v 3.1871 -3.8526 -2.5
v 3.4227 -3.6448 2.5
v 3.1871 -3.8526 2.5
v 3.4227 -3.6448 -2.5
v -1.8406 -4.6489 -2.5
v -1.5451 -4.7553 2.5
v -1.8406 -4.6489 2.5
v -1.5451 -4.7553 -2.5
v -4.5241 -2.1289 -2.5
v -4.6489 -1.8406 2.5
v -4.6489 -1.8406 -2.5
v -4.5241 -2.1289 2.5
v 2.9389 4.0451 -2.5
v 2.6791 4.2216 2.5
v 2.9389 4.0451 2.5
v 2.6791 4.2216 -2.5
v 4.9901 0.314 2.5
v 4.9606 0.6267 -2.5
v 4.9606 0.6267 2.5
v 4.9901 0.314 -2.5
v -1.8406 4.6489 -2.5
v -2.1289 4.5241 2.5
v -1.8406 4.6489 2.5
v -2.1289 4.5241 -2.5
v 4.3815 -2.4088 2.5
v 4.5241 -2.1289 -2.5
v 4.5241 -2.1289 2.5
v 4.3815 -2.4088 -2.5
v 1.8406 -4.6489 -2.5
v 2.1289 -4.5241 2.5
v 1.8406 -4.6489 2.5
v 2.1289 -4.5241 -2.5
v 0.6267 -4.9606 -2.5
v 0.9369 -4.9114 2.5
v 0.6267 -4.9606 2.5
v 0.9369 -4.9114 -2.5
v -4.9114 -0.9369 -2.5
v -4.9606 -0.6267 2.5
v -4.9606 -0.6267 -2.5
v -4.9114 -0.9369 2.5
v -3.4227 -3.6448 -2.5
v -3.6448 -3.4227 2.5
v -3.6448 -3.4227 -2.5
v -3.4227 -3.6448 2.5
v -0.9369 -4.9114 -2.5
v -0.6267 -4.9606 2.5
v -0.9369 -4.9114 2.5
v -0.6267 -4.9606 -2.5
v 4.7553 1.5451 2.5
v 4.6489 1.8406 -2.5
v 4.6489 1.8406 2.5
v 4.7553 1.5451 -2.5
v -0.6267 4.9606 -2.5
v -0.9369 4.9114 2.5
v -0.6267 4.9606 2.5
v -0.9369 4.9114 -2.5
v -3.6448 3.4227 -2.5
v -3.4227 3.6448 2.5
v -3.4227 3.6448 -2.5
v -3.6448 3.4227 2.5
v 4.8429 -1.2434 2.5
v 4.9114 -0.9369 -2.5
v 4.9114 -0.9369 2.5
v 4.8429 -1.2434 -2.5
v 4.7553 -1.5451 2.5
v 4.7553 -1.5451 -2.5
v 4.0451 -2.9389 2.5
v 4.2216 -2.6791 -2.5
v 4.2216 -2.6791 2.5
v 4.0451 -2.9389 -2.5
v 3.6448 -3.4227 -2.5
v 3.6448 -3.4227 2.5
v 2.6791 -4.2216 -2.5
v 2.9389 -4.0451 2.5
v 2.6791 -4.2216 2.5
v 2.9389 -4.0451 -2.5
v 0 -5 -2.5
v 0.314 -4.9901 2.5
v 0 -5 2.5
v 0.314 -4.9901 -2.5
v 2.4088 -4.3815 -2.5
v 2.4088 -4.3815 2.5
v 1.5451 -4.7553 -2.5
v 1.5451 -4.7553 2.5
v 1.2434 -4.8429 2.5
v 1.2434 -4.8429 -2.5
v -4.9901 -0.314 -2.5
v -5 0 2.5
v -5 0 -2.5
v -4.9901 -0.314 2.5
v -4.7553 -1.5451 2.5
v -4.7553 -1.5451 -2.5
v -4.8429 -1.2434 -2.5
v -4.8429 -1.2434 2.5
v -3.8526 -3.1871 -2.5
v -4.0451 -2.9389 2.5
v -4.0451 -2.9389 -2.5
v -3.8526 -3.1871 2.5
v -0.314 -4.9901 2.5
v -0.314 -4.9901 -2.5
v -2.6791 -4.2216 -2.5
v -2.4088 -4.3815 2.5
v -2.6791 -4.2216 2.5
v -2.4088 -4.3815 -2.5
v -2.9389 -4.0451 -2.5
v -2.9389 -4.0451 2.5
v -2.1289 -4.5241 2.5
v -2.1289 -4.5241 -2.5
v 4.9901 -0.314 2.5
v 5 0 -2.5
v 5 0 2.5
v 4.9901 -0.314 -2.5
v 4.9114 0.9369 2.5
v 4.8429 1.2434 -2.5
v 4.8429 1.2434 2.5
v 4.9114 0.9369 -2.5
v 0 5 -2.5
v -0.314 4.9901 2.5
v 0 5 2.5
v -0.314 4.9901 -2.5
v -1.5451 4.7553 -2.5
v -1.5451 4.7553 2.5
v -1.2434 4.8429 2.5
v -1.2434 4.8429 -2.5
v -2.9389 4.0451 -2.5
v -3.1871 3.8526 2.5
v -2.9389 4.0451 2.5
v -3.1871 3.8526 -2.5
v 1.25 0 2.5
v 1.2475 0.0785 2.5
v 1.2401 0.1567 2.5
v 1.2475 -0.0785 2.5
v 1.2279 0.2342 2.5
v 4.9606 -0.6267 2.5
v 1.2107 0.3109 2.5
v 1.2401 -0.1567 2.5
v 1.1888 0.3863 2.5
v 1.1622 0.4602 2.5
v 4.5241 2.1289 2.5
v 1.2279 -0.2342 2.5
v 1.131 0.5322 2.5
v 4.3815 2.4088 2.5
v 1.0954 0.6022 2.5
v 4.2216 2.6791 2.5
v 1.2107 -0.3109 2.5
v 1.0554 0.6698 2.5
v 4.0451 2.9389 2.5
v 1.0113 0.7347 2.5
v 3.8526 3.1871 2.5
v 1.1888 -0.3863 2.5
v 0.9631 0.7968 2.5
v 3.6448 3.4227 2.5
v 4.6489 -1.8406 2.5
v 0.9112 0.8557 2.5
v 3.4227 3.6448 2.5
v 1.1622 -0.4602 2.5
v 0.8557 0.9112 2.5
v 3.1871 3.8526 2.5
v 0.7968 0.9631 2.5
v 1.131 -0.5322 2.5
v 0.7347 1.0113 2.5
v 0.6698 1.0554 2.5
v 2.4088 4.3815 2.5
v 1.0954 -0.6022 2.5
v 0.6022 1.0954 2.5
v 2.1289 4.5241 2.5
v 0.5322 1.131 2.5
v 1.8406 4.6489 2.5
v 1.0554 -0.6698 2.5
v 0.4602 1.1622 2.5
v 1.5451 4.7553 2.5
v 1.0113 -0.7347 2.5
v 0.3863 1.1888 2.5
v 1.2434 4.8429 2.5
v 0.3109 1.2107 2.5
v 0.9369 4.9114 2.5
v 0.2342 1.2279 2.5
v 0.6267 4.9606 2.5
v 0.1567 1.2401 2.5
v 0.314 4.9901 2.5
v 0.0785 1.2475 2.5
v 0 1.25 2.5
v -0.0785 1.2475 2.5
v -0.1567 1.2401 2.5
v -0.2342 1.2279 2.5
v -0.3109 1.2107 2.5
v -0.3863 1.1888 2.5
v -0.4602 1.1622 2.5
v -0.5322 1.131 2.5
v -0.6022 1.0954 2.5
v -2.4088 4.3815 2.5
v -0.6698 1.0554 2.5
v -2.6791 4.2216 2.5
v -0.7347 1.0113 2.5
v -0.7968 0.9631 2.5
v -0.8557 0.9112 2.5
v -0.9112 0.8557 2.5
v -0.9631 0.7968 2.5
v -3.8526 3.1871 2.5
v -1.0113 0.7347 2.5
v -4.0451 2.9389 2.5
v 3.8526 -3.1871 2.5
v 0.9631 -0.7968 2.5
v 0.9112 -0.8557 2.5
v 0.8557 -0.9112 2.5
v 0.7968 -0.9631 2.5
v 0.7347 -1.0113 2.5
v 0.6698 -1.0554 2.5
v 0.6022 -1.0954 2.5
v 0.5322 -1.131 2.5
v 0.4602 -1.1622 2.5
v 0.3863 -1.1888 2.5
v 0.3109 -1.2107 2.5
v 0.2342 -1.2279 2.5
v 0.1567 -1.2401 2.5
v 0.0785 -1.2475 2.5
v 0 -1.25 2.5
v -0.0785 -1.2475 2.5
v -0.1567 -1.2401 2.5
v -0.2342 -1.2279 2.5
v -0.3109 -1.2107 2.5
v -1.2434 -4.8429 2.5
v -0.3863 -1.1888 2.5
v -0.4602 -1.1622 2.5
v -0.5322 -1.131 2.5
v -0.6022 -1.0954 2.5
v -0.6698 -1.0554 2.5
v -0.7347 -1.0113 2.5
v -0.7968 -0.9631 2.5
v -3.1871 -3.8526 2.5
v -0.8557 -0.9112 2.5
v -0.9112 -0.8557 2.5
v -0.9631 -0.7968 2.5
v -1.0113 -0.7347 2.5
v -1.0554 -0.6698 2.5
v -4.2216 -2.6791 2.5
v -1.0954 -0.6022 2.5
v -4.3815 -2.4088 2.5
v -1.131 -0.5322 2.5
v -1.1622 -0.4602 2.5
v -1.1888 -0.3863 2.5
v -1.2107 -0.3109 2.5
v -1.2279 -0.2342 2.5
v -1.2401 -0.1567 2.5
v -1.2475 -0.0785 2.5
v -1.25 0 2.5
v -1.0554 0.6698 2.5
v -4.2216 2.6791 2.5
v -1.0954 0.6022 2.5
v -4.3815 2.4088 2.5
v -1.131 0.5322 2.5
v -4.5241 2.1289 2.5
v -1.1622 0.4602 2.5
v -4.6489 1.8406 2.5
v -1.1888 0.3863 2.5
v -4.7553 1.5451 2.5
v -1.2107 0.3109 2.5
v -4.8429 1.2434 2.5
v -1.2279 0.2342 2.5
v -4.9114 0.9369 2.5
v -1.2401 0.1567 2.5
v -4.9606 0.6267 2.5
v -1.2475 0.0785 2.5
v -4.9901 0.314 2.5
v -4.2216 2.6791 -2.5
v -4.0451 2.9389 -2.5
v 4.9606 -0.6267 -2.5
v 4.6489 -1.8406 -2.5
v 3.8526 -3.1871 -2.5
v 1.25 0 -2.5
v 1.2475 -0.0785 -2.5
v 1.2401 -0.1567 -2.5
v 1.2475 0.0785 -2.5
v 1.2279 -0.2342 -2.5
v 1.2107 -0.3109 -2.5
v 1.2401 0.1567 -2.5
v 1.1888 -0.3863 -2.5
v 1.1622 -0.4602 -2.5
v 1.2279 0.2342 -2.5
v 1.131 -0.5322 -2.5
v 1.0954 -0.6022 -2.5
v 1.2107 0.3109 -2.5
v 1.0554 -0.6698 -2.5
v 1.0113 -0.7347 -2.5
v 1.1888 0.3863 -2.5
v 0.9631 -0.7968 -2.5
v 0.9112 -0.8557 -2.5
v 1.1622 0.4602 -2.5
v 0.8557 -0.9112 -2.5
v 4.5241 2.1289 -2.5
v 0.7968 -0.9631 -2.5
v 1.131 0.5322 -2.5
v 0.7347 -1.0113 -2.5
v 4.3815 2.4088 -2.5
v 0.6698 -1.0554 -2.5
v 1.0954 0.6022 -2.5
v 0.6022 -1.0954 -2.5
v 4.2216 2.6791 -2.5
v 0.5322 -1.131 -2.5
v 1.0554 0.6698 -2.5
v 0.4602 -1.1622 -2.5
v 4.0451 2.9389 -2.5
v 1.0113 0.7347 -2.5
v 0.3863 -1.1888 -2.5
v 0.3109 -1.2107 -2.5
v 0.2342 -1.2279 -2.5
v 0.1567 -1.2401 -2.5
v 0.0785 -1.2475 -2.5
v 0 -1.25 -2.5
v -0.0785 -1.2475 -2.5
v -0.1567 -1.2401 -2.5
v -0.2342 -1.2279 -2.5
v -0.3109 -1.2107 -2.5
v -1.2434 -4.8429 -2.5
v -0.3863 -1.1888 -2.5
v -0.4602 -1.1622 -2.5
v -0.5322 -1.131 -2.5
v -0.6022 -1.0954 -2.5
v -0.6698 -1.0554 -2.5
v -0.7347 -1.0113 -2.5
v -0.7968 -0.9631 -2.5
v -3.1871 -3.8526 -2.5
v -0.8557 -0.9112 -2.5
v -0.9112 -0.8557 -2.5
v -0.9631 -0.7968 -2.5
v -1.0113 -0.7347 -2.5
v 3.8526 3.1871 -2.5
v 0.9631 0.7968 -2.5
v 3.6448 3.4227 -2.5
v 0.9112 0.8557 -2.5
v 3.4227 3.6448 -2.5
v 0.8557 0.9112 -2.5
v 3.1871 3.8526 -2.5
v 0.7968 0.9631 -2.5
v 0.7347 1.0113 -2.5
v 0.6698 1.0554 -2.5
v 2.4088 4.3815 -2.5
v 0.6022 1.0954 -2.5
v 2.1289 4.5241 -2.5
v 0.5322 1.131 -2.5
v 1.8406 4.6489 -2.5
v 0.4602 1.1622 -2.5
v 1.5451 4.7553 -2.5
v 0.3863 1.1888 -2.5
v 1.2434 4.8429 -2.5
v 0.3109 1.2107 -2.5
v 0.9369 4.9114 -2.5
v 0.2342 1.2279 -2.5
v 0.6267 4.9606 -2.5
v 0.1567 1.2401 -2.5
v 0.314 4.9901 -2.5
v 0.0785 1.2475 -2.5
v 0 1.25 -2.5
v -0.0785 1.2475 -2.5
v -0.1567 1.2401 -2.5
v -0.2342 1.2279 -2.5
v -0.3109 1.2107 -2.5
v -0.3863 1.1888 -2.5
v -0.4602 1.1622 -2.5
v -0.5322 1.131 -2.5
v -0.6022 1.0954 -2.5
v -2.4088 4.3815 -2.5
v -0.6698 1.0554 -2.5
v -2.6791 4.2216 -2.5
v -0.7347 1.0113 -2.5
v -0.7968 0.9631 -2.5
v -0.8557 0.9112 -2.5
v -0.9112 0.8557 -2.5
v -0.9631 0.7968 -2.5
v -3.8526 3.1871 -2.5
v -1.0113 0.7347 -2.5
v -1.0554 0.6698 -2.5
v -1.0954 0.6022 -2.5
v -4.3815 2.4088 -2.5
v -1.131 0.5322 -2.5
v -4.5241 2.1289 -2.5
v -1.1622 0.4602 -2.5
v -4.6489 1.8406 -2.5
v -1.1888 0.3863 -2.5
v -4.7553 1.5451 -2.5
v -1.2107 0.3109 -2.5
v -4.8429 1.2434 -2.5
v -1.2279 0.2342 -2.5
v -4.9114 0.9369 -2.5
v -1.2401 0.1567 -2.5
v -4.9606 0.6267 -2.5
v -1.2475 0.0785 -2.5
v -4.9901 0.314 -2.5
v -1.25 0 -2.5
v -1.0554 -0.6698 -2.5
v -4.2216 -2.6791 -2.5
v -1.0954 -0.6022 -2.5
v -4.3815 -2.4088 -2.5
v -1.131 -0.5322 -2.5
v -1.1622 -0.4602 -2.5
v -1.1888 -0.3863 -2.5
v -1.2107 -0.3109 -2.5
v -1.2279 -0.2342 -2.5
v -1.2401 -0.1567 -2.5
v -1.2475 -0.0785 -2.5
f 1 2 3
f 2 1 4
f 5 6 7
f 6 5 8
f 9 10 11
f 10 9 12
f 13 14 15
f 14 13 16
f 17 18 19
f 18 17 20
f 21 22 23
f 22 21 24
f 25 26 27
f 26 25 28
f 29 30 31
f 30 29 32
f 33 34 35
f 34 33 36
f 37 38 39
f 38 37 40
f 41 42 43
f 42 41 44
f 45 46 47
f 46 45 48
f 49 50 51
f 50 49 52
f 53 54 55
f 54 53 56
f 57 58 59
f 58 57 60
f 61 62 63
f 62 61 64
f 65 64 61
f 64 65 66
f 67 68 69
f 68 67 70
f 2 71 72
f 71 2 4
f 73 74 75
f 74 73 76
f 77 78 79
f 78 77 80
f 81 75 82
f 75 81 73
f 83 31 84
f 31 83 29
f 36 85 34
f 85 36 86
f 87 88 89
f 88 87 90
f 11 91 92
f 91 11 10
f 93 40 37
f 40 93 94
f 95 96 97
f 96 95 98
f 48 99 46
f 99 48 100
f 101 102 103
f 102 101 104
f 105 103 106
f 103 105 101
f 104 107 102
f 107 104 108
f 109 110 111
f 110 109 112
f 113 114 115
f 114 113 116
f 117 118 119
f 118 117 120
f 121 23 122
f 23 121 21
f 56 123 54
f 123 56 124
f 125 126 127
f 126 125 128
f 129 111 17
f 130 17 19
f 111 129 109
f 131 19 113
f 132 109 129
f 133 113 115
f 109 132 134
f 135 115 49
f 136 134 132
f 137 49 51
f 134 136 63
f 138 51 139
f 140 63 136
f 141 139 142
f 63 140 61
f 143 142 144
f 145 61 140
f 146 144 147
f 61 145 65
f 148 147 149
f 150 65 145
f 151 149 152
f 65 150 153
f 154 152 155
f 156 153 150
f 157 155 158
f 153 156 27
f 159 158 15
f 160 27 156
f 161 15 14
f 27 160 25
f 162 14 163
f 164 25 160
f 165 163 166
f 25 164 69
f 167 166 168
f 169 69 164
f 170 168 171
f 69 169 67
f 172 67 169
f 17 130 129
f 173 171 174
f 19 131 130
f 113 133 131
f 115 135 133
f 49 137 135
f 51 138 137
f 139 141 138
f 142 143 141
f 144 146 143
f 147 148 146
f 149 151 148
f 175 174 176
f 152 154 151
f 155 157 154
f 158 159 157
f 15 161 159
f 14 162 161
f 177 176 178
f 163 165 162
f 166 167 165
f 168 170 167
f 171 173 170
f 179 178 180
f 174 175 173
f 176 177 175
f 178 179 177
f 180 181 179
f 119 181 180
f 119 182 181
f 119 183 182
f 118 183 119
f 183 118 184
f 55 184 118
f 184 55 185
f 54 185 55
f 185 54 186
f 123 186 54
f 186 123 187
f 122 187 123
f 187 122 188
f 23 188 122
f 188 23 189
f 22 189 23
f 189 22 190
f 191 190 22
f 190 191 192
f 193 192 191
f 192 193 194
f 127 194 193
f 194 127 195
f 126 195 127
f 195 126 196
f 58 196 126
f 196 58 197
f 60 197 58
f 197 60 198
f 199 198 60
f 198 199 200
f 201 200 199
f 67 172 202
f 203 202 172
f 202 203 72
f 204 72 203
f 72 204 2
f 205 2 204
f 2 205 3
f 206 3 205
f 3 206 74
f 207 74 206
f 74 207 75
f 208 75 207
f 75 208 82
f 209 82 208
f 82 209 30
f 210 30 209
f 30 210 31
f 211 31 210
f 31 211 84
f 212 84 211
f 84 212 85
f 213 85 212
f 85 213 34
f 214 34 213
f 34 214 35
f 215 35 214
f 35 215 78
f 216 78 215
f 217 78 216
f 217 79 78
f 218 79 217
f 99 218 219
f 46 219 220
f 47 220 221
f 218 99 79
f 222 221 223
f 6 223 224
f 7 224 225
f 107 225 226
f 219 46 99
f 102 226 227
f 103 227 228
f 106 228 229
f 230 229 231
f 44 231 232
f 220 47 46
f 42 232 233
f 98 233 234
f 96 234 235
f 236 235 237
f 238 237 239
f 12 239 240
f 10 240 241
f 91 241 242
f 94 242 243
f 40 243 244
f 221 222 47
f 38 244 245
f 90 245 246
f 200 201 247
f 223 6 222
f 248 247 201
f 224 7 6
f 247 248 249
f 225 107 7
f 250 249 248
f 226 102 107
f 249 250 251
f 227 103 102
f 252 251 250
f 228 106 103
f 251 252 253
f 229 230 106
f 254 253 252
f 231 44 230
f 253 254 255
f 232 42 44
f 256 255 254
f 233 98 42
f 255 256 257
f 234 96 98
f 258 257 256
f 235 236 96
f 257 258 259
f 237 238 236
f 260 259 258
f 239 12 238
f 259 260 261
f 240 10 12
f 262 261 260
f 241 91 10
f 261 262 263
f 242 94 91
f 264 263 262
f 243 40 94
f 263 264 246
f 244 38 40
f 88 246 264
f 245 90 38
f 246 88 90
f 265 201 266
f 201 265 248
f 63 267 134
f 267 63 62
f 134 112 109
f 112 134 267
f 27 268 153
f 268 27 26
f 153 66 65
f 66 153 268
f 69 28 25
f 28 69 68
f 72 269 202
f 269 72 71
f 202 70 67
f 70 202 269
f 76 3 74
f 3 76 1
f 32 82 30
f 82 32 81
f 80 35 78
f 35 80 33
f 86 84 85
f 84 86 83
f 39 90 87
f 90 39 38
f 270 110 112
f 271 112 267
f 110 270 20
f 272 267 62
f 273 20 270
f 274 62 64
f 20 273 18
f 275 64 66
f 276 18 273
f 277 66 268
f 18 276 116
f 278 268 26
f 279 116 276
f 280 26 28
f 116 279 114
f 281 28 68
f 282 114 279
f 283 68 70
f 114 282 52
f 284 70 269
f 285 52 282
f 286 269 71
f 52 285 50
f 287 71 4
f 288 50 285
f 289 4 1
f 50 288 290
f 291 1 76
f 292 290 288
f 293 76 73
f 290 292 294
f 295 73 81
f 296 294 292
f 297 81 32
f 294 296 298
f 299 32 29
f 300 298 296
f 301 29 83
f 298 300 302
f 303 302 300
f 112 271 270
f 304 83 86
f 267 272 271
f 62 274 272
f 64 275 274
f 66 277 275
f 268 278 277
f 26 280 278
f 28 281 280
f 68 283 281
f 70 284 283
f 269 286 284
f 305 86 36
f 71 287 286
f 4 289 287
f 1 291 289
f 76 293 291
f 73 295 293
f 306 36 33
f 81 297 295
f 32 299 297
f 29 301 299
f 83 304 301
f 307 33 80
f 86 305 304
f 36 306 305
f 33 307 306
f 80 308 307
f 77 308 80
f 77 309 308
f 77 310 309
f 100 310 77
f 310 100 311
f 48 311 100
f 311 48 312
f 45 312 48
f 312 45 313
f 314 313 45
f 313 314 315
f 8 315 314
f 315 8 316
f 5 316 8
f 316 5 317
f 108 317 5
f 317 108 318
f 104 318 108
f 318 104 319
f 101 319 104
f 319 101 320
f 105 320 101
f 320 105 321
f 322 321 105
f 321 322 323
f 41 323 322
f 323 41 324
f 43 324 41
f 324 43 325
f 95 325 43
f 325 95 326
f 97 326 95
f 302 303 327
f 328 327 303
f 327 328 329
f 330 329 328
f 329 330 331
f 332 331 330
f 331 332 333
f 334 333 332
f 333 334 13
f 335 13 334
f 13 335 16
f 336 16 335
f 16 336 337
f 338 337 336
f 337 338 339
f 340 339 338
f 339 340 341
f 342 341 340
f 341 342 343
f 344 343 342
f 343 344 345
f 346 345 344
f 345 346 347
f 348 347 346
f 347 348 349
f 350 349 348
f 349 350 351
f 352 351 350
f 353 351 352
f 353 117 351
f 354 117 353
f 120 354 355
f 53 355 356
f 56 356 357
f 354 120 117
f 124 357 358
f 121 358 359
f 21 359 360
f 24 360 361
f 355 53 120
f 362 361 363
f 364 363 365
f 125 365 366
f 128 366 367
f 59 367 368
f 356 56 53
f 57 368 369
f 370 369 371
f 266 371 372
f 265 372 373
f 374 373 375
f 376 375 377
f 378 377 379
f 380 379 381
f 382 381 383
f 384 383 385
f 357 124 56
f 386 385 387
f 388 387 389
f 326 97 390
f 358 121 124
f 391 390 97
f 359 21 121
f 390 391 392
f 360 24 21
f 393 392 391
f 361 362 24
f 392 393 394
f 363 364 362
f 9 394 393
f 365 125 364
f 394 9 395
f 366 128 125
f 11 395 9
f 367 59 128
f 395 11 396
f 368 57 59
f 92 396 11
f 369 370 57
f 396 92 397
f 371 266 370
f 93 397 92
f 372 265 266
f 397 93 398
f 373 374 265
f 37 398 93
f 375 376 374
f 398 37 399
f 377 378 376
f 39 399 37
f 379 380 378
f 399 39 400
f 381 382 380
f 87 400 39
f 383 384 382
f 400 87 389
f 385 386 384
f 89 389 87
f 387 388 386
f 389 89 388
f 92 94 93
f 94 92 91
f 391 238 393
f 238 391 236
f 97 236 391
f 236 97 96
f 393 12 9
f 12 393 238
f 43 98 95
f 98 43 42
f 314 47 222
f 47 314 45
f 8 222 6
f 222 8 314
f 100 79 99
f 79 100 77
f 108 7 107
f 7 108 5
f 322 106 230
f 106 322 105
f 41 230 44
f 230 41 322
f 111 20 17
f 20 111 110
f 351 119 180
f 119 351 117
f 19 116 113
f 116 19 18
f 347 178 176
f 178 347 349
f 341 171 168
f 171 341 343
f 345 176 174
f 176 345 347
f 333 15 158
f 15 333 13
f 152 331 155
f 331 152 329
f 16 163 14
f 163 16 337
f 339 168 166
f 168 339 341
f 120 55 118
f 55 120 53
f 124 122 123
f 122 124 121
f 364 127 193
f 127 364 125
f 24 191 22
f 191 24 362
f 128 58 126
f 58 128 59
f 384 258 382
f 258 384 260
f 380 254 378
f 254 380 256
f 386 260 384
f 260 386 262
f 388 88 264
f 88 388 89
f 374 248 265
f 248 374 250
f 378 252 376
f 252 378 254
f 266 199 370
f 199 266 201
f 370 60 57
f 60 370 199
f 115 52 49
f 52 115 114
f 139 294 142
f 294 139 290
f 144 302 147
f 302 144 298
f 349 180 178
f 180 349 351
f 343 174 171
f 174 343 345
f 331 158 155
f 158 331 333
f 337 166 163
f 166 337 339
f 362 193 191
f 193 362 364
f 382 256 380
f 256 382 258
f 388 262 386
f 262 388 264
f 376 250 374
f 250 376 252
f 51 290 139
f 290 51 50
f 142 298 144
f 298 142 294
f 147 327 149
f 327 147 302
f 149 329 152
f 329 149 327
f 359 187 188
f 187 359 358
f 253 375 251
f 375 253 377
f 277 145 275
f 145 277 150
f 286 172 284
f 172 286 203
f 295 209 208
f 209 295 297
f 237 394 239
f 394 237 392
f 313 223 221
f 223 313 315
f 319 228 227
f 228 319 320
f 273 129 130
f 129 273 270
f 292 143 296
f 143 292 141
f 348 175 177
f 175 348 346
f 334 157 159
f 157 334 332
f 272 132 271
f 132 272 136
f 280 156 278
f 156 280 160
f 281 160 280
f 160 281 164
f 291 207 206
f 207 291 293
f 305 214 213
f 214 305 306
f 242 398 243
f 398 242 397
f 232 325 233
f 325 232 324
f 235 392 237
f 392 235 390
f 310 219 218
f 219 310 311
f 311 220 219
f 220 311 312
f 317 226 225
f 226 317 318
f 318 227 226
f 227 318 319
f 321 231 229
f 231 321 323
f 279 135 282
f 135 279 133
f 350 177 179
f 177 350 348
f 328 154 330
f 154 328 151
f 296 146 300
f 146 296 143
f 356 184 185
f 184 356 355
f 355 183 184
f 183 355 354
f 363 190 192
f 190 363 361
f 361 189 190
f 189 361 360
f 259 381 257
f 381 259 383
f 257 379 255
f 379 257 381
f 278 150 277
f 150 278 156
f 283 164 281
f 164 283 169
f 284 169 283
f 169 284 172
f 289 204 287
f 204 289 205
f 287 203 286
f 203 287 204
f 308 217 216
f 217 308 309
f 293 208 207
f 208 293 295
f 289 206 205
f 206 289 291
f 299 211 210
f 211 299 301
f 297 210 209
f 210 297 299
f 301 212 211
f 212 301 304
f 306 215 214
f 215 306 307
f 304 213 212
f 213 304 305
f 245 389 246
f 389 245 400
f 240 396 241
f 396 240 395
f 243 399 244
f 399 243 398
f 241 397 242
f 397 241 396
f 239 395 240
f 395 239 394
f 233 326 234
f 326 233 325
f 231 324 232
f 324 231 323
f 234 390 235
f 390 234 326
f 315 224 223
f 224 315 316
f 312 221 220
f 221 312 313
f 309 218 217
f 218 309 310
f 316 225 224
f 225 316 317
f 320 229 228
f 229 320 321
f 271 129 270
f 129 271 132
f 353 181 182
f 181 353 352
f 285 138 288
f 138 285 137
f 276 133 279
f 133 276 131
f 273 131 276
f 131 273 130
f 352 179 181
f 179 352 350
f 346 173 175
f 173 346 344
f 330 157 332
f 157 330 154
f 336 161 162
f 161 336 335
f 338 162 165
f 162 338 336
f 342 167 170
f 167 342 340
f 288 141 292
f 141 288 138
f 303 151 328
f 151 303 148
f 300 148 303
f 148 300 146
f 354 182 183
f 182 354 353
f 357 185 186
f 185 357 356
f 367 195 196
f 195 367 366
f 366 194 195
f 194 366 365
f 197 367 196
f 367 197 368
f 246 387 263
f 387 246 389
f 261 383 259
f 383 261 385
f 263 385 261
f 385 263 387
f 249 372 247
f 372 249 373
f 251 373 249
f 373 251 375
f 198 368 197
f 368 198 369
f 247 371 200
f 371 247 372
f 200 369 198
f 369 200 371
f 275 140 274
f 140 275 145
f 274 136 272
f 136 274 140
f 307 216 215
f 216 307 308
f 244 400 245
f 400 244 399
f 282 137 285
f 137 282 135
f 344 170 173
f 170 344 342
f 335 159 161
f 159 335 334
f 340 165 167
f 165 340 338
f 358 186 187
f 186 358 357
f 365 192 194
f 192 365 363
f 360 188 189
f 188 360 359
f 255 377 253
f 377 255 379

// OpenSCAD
// file: ../openscad-extra/openscad-extra/countersink.scad
/*
Countersink depression for screw heads.
*/
include <../settings.scad>;
use <../openscad-extra/countersink.scad>;

/*
module make_countersink(d1=0, d2=0, h=0, l=0, outer=100, inner=200, bt_extra=0, $fn=25){
    extra = 0.5;
    d1 = d1 ? d1 : screw_thread_diameter;
    d2 = d2 ? d2 : screw_head_diameter;
    h = h ? h : screw_head_height;
    
    union(){
        cylinder(d1=d1, d2=d2, h=h+extra, center=true, $fn=$fn);
        
        if(l)
        cylinder(d=d1, h=l, center=true, $fn=$fn);
    
        // big top
    	translate([0,0,(h+extra)/2])
    	cylinder(d=d2+bt_extra, h=outer, center=false, $fn=$fn);

    	// lower bottom
    	translate([0,0,-(h+extra)/2-inner])
    	cylinder(d=d1, h=inner, center=false, $fn=$fn);
	}
}
*/

module make_countersink_motor(){
    make_countersink(
        d1=motor_mount_holes_width,
        d2=motor_mount_holes_head_width,
        h=motor_mount_holes_head_height);
}

make_countersink();
// file: ../openscad-extra/settings.scad
// Common settings used by all scad files.

// ALL UNITS IN MILLIMETERS (MM)!!!

$fn = 30;//low-res but fast to render
//$fn = 50;//higher-res but slow to render

pi = 3.1415926535897932384626433832795;

max_footprint = 150; // 15x15 cm

bottom_clearance = 10;
bottom_clearance = 25.4/2+10;
//bottom_clearance = 30;

shell_alpha = 0.215;
//shell_alpha = 1.0;

tolerance = 0.5;

// Flat countersunk M2.5mm x 0.45mm machine screw.
screw_thread_diameter = 2.5;//2.8;//2.75;//2.4?
screw_thread_length = 5;//?
screw_head_diameter = 4.75; // M2.5
//screw_head_diameter = 5.2; // M3
screw_head_height = 1.5;//2;

screw_thread_diameter2 = 2;

unit_thickness = 5;
u = unit_thickness;

shell_thickness = unit_thickness;

// Show flags.
show_platform = 1;
show_head = 1;
show_head_shell = 0;
show_head_electronics_bb = 0;
show_inner_head = 0;
show_battery = 1;
show_foot_cube = 0;
show_torso = 0;
show_motor = 0;
show_motor_wheeled_layout = 1;
show_motor_treads = 0;
show_motor_plates = 1;
show_motor_inner_plates = 1;
show_motor_outer_plates = 1;
show_wheel = 0;//obsolete
show_tracks = 1;//
show_track_wheels = 1;
show_caster = 0;
show_rpi = 1;
show_vertical_plates = 1;//
show_horizontal_plates = 1;//
show_caster_plates = 0;//obsolete?
show_camera = 1;
show_screen = 0;
show_edge_mount = 1;
show_sonar_mount = 1;
show_recharge_mount = 1;
show_conduit = 1;
show_torso_shell = 0;
show_recharge_dock = 0;
show_head_tilt_axis = 0;
show_rpi_camera_axis = 0;
show_laser_axis = 0;

head_vertical_angle_tilt = 0;
//head_vertical_angle_tilt = 30;//max
//head_vertical_angle_tilt = 10;

torso_height = 120+20;

base_plate_diameter = max_footprint-unit_thickness*2;
base_plate_frame = 0;

head_height = 50;
head_offset_z = max_footprint/2;
head_middle_cutout = 85;

rpi_with_four_hats_and_clearance = 76;

motor_gear_teeth = 26;

qrd1114_w = 6.10;
qrd1114_l = 4.39;
qrd1114_h = 4.65;

dock_radius = 10;
dock_gripper_border = 2;
dock_gripper_instep = 0.9;
dock_gripper_cutout_tapper = 50;
dock_receiver_height = 5;

// Patriod Fuel+ 9000 mAh
battery_length = 90;
battery_width = 57;
battery_height = 23;
battery_offset_z = 30;//4;

wheel_diameter = 50;
wheel_offset_x = 65;
wheel_offset_z = wheel_diameter/2;
wheel_axle_diameter = 5;

//caster_diameter = 19.05; // 0.75 inches
caster_diameter = 25.45; // 1 inches
//caster_diameter = 15.875; // 5/8 inches
caster_holder_diameter = 30;//31;
caster_offset_y = base_plate_diameter/2 - caster_holder_diameter/2;

arduino_offset_x = 0;
arduino_offset_y = 0;
arduino_offset_z = 67;
arduino_offset_x2 = 0;
arduino_offset_y2 = -20;
arduino_offset_z2 = torso_height+bottom_clearance;

horizontal_plate_width = unit_thickness*8*2 - unit_thickness*2;
horizontal_plate_depth = unit_thickness*8*2;

vertical_plate_width = horizontal_plate_depth;
vertical_plate_height = unit_thickness*8;
vertical_plate_offset_x = wheel_offset_x-22.5;
vertical_plate_offset_z = vertical_plate_height/2 + unit_thickness/2;

vertical_battery_plate_height = 100 - 15;

caster_plate_width = horizontal_plate_width + unit_thickness*2;
caster_plate_mount_length = unit_thickness*4;
caster_plate_width_minor = caster_holder_diameter;

motor_switch_length = 20;
motor_switch_thickness = 6.5;
motor_switch_height = 11;
motor_switch_height_leads = 23;
motor_switch_on_height =  13.3;
motor_switch_hole_diameter = 2.5;
motor_switch_hole_offset_z = 6.5;//this plus diameter/2 is hole center from switch top
motor_switch_hole_spacing = 7.1;// holes are diameter/2 from this

motor_length = 60;
motor_width = 25;
motor_collar_width = 7;
motor_collar_height = 2.5;
motor_axle_width = 4;
motor_axle_height = 9.5;
motor_offset_x = 10;
//motor_offset_y = motor_width/2+5;
motor_offset_y = unit_thickness*3.5;
motor_offset_z = vertical_plate_height/2 - unit_thickness/2;//4;//30;
motor_mount_holes_dist = 17;
// motor countersink hole
motor_mount_holes_width = 3; // M3
motor_mount_holes_head_height = 2.2;
motor_mount_holes_head_width = 5.8;
motor_bearing_outer_diameter = 10;
motor_bearing_inner_diameter = 5.95;
motor_bearing_thickness = 2.5;

motor_unimount_idler_axle_d = screw_thread_diameter;
//motor_unimount_spacer_depth = 0.1;//too small
motor_unimount_spacer_depth = 0.5;

motor_arm_offset_y = -u*3;
motor_arm_offset_z = u*.5;

motor_plate_width = vertical_plate_width;
motor_plate_height = vertical_plate_height;
motor_plate_thickness = unit_thickness;
motor_plate_offset_z = vertical_plate_offset_z;

motor_plate_middle_thickness = 5;

wheel_hub_offset = u*3;

motor_hole_height_offset = -5;

nylon_spacer_outer_diameter = 6.35;
nylon_spacer_inner_diameter = 3.302;
nylon_spacer_length = 12.7;

track_width = unit_thickness*3;
track_offset_x = -50;
track_offset_z = .1;
//track_wheel_radius = 19;//original
track_wheel_radius = 14;
//track_wheel_hole_radius = (nylon_spacer_outer_diameter+1)/2;
track_wheel_hole_radius = motor_bearing_outer_diameter/2;

track_driver_hole_radius = (motor_axle_width)/2 + 0.1;
track_driver_set_screw_head_d = 4.1;
track_driver_set_screw_shaft_d = 2.4;
//track_wheel_width = 13.5;//original
track_wheel_width = u*2;
track_wheel_width_buffer = u*0.25;
track_offset = 3;        //distance from chassis
track_wheel_offset = track_offset;
//track_length = 250; // see tread_triangle.py, too big
//track_length = 240; // see tread_triangle.py
//track_length = 238; //inc/dec in 10 unit increments so notches match idlers
track_length = 228; //inc/dec in 10 unit increments so notches match idlers
track_radius = track_length/2/pi;
track_wheel_show_fancy = 1;
track_wheel_gap = track_wheel_width + track_wheel_width_buffer*2;
track_axle_bearing_diameter = motor_bearing_inner_diameter - 0.1;
track_tensioner_radius = 12;
track_nut_height = 3.5; //TODO
track_punchout_thickness = 0.25;//should be the same as the minimum layer thickness

head_slew_bearing_outer_diameter = 115;
head_slew_bearing_ring_thickness = 20;
head_slew_bearing_inner_diameter = head_slew_bearing_outer_diameter - head_slew_bearing_ring_thickness;
//head_slew_bearing_hole_diameter = head_slew_bearing_inner_diameter - head_slew_bearing_ring_thickness;
head_slew_bearing_hole_diameter = 12+tolerance; // slip ring https://www.adafruit.com/products/775
//head_slew_bearing_ball_diameter = 5;
head_slew_bearing_ball_diameter = 2.5; //u/2;
head_slew_bearing_height = u;//head_slew_bearing_ball_diameter*2;
head_slew_bearing_gap = 0.5;
head_slew_bearing_slew_gap = 0;
head_slew_bearing_gap_factor = 0.1;

neck_strut_width = u*7;
neck_strut_height = u*18;
neck_strut_spacing = u*8;

show_outer_race = 0;
show_inner_race_a = 1;
show_inner_race_b = 1;
show_balls = 0;
// file: ../openscad-extra/src/countersink.scad
/*
Countersink depression for screw heads.
*/
include <../settings.scad>;
use <../openscad-extra/countersink.scad>;

/*
module make_countersink(d1=0, d2=0, h=0, l=0, outer=100, inner=200, bt_extra=0, $fn=25){
    extra = 0.5;
    d1 = d1 ? d1 : screw_thread_diameter;
    d2 = d2 ? d2 : screw_head_diameter;
    h = h ? h : screw_head_height;
    
    union(){
        cylinder(d1=d1, d2=d2, h=h+extra, center=true, $fn=$fn);
        
        if(l)
        cylinder(d=d1, h=l, center=true, $fn=$fn);
    
        // big top
    	translate([0,0,(h+extra)/2])
    	cylinder(d=d2+bt_extra, h=outer, center=false, $fn=$fn);

    	// lower bottom
    	translate([0,0,-(h+extra)/2-inner])
    	cylinder(d=d1, h=inner, center=false, $fn=$fn);
	}
}
*/

module make_countersink_motor(){
    make_countersink(
        d1=motor_mount_holes_width,
        d2=motor_mount_holes_head_width,
        h=motor_mount_holes_head_height);
}

make_countersink();
// file: caster_housing_top.scad
use <../openscad-extra/src/countersink.scad>;

module make_caster_screw_holes(){
    for(i=[-1:2:1])
    translate([15,10*i,2.6])
    make_countersink(d1=2.5, d2=5);
}

module make_caster_housing_top(){
    difference(){
        color("orange")
        cube([35,30,5], center=true);
        
        // cutout for round top
        color("blue")
        translate([-2.5,0,0])
        cylinder(d=22.5, h=30, center=true, $fn=100);
        
        // cutout for round bottom
        color("blue")
        translate([-2.5,0,-3.75])
        cylinder(d=26, h=10, center=true, $fn=100);
        
        // cutout for bottom slide
        translate([30,0,-.01])
        rotate([-90,0,90])
        color("red")
        linear_extrude(50)
        polygon([[0,0],[13,0],[13-1,2.5],[-13+1,2.5],[-13,0]]);
    
        make_caster_screw_holes();
    }
}

module make_caster_housing_bottom(){
    difference(){
        translate([35/2,0,-.01])
        rotate([-90,0,90])
        color("red")
        linear_extrude(35)
        polygon([[0,0],[13-0.25,0],[13-1-0.25,2.5],[-13+1+0.25,2.5],[-13+0.25,0]]);
        
        // cutout for thrust bearing 12mm diameter and 2mm height
        cube([40,12,1.5], center=true);
        
        // cutout for center thrust bearing
        color("purple")
        translate([-2.5,0,0])
        cylinder(d=12, h=2, center=true, $fn=100);
        
        make_caster_screw_holes();
    }
}

module make_caster_housing_center(){
    difference(){
        union(){
            // cutout for round top
            color("purple")
            translate([-2.5,0,1.6])
            cylinder(d=22.5-1, h=2, center=true, $fn=100);
            
            // cutout for round bottom
            color("purple")
            translate([-2.5,0,0.25])
            cylinder(d=26-1, h=0.75, center=true, $fn=100);
        }
            
        // cutout for center thrust bearing
        color("purple")
        translate([-2.5,0,0])
        cylinder(d=12, h=1.9, center=true, $fn=100);
    }
    difference(){
        intersection(){
            translate([2,0,0])
            scale([1.25,1,1.1])
            sphere(d=25, $fn=100);
                
            color("purple")
            translate([-2.5,0,52])
            cylinder(d=22.5-1, h=100, center=true, $fn=100);
        }
        
        // wheel well
        translate([6,0,12.5])
        cube([20,7,20], center=true);
        
        // axle hole
        color("red")
        translate([4,0,10])
        rotate([90,0,0])
        cylinder(d=2, h=50, center=true, $fn=100);
    }
    
}

module make_caster_wheel(d=11){
    rotate([90,0,0]){
        difference(){
            cylinder(d=d, h=5, center=true, $fn=100);
            cylinder(d=2.5, h=20, center=true, $fn=100);
        }
        //color("blue")
        //cylinder(d=1, h=100, center=true, $fn=100);
    }
}

rotate([180,0,0])
make_caster_housing_top();
// main file
use <caster_housing_top.scad>;

rotate([90,0,0])
make_caster_wheel(d=10);
